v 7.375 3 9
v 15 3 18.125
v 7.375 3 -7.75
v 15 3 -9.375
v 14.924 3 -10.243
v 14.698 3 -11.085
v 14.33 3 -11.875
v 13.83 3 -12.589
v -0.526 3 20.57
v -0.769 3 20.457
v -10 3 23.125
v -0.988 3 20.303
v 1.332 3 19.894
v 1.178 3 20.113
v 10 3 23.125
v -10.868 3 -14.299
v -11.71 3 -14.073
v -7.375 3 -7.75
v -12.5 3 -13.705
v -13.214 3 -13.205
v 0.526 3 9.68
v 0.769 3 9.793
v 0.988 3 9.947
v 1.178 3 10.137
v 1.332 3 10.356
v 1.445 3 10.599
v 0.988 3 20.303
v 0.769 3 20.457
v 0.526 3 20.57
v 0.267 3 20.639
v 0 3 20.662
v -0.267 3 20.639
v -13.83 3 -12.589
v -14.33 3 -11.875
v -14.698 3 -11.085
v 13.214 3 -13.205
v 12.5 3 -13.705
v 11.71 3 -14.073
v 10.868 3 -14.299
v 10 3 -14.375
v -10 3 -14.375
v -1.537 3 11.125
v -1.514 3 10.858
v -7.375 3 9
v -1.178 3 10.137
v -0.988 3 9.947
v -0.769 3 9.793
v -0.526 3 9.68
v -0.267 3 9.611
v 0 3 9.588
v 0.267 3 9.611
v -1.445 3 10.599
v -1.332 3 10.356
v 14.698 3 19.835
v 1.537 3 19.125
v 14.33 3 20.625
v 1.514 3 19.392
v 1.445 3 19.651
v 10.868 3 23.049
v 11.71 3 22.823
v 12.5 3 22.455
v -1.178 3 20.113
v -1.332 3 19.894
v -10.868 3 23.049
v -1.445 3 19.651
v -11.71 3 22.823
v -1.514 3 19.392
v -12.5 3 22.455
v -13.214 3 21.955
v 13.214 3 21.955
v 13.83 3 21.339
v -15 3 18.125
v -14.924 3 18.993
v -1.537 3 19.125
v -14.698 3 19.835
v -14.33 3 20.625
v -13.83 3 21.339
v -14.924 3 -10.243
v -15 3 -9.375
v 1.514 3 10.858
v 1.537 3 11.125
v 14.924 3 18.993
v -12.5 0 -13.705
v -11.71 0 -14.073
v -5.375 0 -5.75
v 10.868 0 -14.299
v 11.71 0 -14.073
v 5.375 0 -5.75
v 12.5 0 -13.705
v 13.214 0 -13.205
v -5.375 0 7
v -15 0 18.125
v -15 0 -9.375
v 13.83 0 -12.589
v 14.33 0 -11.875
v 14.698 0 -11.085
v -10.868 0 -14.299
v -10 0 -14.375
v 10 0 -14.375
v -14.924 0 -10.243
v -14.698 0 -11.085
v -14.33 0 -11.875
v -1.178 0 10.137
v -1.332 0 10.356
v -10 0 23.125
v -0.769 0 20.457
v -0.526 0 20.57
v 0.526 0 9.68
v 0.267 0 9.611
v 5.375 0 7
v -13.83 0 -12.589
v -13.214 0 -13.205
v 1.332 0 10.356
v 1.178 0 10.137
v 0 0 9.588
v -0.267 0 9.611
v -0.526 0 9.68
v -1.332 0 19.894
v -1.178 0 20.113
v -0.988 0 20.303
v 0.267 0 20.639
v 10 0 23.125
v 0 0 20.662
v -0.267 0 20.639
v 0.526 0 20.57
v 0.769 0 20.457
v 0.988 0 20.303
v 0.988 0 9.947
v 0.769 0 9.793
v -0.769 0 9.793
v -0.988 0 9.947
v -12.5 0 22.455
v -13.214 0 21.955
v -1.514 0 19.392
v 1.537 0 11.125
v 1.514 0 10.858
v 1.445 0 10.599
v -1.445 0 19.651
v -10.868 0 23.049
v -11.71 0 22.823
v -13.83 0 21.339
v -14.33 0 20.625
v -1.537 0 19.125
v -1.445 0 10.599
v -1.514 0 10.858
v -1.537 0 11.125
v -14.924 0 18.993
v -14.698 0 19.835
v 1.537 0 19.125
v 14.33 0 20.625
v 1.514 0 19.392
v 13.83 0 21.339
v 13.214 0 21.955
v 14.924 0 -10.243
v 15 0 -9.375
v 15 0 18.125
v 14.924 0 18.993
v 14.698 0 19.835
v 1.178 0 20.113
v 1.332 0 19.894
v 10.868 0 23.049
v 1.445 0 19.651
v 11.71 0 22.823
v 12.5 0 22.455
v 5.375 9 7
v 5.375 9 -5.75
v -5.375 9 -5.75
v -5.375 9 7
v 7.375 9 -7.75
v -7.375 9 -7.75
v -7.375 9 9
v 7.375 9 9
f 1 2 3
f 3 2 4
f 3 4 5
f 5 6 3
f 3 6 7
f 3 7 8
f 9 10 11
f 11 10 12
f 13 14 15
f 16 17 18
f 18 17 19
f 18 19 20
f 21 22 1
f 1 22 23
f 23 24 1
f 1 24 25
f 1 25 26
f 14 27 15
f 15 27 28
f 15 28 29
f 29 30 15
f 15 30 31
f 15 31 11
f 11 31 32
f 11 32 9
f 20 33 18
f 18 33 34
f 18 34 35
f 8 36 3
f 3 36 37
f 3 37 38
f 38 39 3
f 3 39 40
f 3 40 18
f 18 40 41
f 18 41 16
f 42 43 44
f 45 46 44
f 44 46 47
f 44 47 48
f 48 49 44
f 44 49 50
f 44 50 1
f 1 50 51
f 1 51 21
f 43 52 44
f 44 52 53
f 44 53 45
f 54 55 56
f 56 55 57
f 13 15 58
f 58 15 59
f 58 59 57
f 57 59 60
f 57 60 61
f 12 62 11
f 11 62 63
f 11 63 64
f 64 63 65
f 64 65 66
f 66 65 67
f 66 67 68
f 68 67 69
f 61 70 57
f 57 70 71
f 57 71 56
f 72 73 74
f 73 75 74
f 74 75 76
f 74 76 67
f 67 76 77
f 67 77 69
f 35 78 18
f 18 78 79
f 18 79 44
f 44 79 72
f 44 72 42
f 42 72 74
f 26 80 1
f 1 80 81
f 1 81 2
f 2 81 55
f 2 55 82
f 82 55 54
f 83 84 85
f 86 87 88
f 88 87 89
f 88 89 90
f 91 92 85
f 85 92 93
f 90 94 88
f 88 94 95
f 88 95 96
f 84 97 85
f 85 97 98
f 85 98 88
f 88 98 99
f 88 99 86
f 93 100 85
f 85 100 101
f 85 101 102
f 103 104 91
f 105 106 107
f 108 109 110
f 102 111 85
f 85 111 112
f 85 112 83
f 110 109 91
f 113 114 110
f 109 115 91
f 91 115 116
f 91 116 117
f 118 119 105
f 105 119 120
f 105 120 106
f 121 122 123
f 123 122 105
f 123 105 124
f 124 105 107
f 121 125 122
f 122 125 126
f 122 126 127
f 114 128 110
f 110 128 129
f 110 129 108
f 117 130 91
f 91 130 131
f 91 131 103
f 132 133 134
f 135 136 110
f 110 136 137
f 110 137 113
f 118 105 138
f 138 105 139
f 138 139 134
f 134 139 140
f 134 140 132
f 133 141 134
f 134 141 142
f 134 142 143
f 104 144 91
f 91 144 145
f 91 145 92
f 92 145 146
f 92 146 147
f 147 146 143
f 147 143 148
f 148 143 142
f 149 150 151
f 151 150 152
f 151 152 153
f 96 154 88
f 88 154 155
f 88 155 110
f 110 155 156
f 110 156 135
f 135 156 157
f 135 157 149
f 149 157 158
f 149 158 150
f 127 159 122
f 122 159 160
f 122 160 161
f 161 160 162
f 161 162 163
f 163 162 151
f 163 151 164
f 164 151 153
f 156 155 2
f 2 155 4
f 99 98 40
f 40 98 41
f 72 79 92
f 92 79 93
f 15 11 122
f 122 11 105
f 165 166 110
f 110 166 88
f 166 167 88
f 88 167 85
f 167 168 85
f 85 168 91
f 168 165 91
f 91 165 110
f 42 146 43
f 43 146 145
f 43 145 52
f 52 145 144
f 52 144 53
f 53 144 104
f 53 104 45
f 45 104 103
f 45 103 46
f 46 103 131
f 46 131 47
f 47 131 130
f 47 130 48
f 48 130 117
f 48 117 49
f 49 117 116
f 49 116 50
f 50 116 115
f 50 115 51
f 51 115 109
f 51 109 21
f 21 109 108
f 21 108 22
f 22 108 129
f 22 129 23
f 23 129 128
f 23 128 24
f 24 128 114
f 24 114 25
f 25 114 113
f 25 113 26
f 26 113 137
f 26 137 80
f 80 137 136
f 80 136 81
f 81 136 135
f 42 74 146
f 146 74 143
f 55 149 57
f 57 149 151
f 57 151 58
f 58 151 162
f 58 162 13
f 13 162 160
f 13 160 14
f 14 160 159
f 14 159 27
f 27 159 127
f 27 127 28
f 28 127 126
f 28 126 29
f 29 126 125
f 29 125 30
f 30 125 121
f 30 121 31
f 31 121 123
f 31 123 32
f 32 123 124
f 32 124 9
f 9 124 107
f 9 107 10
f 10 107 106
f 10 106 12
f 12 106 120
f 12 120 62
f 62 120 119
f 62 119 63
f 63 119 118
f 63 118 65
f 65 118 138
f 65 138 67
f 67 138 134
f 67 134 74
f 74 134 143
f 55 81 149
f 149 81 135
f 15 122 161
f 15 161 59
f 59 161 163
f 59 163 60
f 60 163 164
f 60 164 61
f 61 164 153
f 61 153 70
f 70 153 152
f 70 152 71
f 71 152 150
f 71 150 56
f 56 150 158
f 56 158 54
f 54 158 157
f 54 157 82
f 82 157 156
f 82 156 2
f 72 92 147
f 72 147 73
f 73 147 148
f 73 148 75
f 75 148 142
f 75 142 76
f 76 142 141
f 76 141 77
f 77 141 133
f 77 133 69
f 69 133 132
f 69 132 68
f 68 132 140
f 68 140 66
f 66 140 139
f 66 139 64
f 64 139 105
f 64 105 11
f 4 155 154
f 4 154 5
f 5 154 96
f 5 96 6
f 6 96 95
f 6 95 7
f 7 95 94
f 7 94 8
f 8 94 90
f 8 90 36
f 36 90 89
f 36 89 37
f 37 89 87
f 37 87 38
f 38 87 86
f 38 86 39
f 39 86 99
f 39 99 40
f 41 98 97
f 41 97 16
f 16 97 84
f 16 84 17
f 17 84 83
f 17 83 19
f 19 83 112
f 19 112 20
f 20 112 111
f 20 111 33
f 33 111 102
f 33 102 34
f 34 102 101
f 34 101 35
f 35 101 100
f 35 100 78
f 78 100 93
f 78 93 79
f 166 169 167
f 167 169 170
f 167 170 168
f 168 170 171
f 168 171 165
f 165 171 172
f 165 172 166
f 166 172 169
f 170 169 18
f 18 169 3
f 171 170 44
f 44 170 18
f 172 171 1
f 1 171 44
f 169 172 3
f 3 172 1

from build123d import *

# Parameters (mm, degrees)
SKETCH1_W           = 30
SKETCH1_H           = 37.5
SKETCH1_W_2         = 10.75
SKETCH1_H_2         = 12.75
BOSS_EXTRUDE1_DEPTH = 3
FILLET1_R           = 5
SKETCH2_W           = 14.75
SKETCH2_H           = 16.75
SKETCH2_W_2         = 10.75
SKETCH2_H_2         = 12.75
BOSS_EXTRUDE2_DEPTH = 6


with BuildPart() as part:
    # Sketch1 → Boss-Extrude1 (new body)
    with BuildSketch(Plane(origin=(0, 0, 0), x_dir=(1, 0, 0), z_dir=(0, 1, 0))):
        with Locations((0, -4.375)):
            Rectangle(SKETCH1_W, SKETCH1_H)
        with BuildLine():
            Line((1.5375, -11.125), (1.5375, -19.125))
            ThreePointArc((1.5375, -19.125), (0, -20.6625), (-1.5375, -19.125))
            Line((-1.5375, -19.125), (-1.5375, -11.125))
            ThreePointArc((-1.5375, -11.125), (0, -9.5875), (1.5375, -11.125))
        make_face(mode=Mode.SUBTRACT)
        with Locations((0, -0.625)):
            Rectangle(SKETCH1_W_2, SKETCH1_H_2, mode=Mode.SUBTRACT)
    extrude(amount=BOSS_EXTRUDE1_DEPTH)

    # Fillet1
    fillet1_edges = [part.edges().sort_by_distance(p)[0] for p in [
        (15, 1.5, 23.125),
        (-15, 1.5, 23.125),
        (-15, 1.5, -14.375),
        (15, 1.5, -14.375),
    ]]
    fillet(fillet1_edges, radius=FILLET1_R)

    # Sketch2 → Boss-Extrude2 (add)
    with BuildSketch(Plane(origin=(0, 3, 0), x_dir=(1, 0, 0), z_dir=(0, 1, 0))):
        with Locations((0, -0.625)):
            Rectangle(SKETCH2_W, SKETCH2_H)
        with Locations((0, -0.625)):
            Rectangle(SKETCH2_W_2, SKETCH2_H_2, mode=Mode.SUBTRACT)
    extrude(amount=BOSS_EXTRUDE2_DEPTH)


solid = part.part
